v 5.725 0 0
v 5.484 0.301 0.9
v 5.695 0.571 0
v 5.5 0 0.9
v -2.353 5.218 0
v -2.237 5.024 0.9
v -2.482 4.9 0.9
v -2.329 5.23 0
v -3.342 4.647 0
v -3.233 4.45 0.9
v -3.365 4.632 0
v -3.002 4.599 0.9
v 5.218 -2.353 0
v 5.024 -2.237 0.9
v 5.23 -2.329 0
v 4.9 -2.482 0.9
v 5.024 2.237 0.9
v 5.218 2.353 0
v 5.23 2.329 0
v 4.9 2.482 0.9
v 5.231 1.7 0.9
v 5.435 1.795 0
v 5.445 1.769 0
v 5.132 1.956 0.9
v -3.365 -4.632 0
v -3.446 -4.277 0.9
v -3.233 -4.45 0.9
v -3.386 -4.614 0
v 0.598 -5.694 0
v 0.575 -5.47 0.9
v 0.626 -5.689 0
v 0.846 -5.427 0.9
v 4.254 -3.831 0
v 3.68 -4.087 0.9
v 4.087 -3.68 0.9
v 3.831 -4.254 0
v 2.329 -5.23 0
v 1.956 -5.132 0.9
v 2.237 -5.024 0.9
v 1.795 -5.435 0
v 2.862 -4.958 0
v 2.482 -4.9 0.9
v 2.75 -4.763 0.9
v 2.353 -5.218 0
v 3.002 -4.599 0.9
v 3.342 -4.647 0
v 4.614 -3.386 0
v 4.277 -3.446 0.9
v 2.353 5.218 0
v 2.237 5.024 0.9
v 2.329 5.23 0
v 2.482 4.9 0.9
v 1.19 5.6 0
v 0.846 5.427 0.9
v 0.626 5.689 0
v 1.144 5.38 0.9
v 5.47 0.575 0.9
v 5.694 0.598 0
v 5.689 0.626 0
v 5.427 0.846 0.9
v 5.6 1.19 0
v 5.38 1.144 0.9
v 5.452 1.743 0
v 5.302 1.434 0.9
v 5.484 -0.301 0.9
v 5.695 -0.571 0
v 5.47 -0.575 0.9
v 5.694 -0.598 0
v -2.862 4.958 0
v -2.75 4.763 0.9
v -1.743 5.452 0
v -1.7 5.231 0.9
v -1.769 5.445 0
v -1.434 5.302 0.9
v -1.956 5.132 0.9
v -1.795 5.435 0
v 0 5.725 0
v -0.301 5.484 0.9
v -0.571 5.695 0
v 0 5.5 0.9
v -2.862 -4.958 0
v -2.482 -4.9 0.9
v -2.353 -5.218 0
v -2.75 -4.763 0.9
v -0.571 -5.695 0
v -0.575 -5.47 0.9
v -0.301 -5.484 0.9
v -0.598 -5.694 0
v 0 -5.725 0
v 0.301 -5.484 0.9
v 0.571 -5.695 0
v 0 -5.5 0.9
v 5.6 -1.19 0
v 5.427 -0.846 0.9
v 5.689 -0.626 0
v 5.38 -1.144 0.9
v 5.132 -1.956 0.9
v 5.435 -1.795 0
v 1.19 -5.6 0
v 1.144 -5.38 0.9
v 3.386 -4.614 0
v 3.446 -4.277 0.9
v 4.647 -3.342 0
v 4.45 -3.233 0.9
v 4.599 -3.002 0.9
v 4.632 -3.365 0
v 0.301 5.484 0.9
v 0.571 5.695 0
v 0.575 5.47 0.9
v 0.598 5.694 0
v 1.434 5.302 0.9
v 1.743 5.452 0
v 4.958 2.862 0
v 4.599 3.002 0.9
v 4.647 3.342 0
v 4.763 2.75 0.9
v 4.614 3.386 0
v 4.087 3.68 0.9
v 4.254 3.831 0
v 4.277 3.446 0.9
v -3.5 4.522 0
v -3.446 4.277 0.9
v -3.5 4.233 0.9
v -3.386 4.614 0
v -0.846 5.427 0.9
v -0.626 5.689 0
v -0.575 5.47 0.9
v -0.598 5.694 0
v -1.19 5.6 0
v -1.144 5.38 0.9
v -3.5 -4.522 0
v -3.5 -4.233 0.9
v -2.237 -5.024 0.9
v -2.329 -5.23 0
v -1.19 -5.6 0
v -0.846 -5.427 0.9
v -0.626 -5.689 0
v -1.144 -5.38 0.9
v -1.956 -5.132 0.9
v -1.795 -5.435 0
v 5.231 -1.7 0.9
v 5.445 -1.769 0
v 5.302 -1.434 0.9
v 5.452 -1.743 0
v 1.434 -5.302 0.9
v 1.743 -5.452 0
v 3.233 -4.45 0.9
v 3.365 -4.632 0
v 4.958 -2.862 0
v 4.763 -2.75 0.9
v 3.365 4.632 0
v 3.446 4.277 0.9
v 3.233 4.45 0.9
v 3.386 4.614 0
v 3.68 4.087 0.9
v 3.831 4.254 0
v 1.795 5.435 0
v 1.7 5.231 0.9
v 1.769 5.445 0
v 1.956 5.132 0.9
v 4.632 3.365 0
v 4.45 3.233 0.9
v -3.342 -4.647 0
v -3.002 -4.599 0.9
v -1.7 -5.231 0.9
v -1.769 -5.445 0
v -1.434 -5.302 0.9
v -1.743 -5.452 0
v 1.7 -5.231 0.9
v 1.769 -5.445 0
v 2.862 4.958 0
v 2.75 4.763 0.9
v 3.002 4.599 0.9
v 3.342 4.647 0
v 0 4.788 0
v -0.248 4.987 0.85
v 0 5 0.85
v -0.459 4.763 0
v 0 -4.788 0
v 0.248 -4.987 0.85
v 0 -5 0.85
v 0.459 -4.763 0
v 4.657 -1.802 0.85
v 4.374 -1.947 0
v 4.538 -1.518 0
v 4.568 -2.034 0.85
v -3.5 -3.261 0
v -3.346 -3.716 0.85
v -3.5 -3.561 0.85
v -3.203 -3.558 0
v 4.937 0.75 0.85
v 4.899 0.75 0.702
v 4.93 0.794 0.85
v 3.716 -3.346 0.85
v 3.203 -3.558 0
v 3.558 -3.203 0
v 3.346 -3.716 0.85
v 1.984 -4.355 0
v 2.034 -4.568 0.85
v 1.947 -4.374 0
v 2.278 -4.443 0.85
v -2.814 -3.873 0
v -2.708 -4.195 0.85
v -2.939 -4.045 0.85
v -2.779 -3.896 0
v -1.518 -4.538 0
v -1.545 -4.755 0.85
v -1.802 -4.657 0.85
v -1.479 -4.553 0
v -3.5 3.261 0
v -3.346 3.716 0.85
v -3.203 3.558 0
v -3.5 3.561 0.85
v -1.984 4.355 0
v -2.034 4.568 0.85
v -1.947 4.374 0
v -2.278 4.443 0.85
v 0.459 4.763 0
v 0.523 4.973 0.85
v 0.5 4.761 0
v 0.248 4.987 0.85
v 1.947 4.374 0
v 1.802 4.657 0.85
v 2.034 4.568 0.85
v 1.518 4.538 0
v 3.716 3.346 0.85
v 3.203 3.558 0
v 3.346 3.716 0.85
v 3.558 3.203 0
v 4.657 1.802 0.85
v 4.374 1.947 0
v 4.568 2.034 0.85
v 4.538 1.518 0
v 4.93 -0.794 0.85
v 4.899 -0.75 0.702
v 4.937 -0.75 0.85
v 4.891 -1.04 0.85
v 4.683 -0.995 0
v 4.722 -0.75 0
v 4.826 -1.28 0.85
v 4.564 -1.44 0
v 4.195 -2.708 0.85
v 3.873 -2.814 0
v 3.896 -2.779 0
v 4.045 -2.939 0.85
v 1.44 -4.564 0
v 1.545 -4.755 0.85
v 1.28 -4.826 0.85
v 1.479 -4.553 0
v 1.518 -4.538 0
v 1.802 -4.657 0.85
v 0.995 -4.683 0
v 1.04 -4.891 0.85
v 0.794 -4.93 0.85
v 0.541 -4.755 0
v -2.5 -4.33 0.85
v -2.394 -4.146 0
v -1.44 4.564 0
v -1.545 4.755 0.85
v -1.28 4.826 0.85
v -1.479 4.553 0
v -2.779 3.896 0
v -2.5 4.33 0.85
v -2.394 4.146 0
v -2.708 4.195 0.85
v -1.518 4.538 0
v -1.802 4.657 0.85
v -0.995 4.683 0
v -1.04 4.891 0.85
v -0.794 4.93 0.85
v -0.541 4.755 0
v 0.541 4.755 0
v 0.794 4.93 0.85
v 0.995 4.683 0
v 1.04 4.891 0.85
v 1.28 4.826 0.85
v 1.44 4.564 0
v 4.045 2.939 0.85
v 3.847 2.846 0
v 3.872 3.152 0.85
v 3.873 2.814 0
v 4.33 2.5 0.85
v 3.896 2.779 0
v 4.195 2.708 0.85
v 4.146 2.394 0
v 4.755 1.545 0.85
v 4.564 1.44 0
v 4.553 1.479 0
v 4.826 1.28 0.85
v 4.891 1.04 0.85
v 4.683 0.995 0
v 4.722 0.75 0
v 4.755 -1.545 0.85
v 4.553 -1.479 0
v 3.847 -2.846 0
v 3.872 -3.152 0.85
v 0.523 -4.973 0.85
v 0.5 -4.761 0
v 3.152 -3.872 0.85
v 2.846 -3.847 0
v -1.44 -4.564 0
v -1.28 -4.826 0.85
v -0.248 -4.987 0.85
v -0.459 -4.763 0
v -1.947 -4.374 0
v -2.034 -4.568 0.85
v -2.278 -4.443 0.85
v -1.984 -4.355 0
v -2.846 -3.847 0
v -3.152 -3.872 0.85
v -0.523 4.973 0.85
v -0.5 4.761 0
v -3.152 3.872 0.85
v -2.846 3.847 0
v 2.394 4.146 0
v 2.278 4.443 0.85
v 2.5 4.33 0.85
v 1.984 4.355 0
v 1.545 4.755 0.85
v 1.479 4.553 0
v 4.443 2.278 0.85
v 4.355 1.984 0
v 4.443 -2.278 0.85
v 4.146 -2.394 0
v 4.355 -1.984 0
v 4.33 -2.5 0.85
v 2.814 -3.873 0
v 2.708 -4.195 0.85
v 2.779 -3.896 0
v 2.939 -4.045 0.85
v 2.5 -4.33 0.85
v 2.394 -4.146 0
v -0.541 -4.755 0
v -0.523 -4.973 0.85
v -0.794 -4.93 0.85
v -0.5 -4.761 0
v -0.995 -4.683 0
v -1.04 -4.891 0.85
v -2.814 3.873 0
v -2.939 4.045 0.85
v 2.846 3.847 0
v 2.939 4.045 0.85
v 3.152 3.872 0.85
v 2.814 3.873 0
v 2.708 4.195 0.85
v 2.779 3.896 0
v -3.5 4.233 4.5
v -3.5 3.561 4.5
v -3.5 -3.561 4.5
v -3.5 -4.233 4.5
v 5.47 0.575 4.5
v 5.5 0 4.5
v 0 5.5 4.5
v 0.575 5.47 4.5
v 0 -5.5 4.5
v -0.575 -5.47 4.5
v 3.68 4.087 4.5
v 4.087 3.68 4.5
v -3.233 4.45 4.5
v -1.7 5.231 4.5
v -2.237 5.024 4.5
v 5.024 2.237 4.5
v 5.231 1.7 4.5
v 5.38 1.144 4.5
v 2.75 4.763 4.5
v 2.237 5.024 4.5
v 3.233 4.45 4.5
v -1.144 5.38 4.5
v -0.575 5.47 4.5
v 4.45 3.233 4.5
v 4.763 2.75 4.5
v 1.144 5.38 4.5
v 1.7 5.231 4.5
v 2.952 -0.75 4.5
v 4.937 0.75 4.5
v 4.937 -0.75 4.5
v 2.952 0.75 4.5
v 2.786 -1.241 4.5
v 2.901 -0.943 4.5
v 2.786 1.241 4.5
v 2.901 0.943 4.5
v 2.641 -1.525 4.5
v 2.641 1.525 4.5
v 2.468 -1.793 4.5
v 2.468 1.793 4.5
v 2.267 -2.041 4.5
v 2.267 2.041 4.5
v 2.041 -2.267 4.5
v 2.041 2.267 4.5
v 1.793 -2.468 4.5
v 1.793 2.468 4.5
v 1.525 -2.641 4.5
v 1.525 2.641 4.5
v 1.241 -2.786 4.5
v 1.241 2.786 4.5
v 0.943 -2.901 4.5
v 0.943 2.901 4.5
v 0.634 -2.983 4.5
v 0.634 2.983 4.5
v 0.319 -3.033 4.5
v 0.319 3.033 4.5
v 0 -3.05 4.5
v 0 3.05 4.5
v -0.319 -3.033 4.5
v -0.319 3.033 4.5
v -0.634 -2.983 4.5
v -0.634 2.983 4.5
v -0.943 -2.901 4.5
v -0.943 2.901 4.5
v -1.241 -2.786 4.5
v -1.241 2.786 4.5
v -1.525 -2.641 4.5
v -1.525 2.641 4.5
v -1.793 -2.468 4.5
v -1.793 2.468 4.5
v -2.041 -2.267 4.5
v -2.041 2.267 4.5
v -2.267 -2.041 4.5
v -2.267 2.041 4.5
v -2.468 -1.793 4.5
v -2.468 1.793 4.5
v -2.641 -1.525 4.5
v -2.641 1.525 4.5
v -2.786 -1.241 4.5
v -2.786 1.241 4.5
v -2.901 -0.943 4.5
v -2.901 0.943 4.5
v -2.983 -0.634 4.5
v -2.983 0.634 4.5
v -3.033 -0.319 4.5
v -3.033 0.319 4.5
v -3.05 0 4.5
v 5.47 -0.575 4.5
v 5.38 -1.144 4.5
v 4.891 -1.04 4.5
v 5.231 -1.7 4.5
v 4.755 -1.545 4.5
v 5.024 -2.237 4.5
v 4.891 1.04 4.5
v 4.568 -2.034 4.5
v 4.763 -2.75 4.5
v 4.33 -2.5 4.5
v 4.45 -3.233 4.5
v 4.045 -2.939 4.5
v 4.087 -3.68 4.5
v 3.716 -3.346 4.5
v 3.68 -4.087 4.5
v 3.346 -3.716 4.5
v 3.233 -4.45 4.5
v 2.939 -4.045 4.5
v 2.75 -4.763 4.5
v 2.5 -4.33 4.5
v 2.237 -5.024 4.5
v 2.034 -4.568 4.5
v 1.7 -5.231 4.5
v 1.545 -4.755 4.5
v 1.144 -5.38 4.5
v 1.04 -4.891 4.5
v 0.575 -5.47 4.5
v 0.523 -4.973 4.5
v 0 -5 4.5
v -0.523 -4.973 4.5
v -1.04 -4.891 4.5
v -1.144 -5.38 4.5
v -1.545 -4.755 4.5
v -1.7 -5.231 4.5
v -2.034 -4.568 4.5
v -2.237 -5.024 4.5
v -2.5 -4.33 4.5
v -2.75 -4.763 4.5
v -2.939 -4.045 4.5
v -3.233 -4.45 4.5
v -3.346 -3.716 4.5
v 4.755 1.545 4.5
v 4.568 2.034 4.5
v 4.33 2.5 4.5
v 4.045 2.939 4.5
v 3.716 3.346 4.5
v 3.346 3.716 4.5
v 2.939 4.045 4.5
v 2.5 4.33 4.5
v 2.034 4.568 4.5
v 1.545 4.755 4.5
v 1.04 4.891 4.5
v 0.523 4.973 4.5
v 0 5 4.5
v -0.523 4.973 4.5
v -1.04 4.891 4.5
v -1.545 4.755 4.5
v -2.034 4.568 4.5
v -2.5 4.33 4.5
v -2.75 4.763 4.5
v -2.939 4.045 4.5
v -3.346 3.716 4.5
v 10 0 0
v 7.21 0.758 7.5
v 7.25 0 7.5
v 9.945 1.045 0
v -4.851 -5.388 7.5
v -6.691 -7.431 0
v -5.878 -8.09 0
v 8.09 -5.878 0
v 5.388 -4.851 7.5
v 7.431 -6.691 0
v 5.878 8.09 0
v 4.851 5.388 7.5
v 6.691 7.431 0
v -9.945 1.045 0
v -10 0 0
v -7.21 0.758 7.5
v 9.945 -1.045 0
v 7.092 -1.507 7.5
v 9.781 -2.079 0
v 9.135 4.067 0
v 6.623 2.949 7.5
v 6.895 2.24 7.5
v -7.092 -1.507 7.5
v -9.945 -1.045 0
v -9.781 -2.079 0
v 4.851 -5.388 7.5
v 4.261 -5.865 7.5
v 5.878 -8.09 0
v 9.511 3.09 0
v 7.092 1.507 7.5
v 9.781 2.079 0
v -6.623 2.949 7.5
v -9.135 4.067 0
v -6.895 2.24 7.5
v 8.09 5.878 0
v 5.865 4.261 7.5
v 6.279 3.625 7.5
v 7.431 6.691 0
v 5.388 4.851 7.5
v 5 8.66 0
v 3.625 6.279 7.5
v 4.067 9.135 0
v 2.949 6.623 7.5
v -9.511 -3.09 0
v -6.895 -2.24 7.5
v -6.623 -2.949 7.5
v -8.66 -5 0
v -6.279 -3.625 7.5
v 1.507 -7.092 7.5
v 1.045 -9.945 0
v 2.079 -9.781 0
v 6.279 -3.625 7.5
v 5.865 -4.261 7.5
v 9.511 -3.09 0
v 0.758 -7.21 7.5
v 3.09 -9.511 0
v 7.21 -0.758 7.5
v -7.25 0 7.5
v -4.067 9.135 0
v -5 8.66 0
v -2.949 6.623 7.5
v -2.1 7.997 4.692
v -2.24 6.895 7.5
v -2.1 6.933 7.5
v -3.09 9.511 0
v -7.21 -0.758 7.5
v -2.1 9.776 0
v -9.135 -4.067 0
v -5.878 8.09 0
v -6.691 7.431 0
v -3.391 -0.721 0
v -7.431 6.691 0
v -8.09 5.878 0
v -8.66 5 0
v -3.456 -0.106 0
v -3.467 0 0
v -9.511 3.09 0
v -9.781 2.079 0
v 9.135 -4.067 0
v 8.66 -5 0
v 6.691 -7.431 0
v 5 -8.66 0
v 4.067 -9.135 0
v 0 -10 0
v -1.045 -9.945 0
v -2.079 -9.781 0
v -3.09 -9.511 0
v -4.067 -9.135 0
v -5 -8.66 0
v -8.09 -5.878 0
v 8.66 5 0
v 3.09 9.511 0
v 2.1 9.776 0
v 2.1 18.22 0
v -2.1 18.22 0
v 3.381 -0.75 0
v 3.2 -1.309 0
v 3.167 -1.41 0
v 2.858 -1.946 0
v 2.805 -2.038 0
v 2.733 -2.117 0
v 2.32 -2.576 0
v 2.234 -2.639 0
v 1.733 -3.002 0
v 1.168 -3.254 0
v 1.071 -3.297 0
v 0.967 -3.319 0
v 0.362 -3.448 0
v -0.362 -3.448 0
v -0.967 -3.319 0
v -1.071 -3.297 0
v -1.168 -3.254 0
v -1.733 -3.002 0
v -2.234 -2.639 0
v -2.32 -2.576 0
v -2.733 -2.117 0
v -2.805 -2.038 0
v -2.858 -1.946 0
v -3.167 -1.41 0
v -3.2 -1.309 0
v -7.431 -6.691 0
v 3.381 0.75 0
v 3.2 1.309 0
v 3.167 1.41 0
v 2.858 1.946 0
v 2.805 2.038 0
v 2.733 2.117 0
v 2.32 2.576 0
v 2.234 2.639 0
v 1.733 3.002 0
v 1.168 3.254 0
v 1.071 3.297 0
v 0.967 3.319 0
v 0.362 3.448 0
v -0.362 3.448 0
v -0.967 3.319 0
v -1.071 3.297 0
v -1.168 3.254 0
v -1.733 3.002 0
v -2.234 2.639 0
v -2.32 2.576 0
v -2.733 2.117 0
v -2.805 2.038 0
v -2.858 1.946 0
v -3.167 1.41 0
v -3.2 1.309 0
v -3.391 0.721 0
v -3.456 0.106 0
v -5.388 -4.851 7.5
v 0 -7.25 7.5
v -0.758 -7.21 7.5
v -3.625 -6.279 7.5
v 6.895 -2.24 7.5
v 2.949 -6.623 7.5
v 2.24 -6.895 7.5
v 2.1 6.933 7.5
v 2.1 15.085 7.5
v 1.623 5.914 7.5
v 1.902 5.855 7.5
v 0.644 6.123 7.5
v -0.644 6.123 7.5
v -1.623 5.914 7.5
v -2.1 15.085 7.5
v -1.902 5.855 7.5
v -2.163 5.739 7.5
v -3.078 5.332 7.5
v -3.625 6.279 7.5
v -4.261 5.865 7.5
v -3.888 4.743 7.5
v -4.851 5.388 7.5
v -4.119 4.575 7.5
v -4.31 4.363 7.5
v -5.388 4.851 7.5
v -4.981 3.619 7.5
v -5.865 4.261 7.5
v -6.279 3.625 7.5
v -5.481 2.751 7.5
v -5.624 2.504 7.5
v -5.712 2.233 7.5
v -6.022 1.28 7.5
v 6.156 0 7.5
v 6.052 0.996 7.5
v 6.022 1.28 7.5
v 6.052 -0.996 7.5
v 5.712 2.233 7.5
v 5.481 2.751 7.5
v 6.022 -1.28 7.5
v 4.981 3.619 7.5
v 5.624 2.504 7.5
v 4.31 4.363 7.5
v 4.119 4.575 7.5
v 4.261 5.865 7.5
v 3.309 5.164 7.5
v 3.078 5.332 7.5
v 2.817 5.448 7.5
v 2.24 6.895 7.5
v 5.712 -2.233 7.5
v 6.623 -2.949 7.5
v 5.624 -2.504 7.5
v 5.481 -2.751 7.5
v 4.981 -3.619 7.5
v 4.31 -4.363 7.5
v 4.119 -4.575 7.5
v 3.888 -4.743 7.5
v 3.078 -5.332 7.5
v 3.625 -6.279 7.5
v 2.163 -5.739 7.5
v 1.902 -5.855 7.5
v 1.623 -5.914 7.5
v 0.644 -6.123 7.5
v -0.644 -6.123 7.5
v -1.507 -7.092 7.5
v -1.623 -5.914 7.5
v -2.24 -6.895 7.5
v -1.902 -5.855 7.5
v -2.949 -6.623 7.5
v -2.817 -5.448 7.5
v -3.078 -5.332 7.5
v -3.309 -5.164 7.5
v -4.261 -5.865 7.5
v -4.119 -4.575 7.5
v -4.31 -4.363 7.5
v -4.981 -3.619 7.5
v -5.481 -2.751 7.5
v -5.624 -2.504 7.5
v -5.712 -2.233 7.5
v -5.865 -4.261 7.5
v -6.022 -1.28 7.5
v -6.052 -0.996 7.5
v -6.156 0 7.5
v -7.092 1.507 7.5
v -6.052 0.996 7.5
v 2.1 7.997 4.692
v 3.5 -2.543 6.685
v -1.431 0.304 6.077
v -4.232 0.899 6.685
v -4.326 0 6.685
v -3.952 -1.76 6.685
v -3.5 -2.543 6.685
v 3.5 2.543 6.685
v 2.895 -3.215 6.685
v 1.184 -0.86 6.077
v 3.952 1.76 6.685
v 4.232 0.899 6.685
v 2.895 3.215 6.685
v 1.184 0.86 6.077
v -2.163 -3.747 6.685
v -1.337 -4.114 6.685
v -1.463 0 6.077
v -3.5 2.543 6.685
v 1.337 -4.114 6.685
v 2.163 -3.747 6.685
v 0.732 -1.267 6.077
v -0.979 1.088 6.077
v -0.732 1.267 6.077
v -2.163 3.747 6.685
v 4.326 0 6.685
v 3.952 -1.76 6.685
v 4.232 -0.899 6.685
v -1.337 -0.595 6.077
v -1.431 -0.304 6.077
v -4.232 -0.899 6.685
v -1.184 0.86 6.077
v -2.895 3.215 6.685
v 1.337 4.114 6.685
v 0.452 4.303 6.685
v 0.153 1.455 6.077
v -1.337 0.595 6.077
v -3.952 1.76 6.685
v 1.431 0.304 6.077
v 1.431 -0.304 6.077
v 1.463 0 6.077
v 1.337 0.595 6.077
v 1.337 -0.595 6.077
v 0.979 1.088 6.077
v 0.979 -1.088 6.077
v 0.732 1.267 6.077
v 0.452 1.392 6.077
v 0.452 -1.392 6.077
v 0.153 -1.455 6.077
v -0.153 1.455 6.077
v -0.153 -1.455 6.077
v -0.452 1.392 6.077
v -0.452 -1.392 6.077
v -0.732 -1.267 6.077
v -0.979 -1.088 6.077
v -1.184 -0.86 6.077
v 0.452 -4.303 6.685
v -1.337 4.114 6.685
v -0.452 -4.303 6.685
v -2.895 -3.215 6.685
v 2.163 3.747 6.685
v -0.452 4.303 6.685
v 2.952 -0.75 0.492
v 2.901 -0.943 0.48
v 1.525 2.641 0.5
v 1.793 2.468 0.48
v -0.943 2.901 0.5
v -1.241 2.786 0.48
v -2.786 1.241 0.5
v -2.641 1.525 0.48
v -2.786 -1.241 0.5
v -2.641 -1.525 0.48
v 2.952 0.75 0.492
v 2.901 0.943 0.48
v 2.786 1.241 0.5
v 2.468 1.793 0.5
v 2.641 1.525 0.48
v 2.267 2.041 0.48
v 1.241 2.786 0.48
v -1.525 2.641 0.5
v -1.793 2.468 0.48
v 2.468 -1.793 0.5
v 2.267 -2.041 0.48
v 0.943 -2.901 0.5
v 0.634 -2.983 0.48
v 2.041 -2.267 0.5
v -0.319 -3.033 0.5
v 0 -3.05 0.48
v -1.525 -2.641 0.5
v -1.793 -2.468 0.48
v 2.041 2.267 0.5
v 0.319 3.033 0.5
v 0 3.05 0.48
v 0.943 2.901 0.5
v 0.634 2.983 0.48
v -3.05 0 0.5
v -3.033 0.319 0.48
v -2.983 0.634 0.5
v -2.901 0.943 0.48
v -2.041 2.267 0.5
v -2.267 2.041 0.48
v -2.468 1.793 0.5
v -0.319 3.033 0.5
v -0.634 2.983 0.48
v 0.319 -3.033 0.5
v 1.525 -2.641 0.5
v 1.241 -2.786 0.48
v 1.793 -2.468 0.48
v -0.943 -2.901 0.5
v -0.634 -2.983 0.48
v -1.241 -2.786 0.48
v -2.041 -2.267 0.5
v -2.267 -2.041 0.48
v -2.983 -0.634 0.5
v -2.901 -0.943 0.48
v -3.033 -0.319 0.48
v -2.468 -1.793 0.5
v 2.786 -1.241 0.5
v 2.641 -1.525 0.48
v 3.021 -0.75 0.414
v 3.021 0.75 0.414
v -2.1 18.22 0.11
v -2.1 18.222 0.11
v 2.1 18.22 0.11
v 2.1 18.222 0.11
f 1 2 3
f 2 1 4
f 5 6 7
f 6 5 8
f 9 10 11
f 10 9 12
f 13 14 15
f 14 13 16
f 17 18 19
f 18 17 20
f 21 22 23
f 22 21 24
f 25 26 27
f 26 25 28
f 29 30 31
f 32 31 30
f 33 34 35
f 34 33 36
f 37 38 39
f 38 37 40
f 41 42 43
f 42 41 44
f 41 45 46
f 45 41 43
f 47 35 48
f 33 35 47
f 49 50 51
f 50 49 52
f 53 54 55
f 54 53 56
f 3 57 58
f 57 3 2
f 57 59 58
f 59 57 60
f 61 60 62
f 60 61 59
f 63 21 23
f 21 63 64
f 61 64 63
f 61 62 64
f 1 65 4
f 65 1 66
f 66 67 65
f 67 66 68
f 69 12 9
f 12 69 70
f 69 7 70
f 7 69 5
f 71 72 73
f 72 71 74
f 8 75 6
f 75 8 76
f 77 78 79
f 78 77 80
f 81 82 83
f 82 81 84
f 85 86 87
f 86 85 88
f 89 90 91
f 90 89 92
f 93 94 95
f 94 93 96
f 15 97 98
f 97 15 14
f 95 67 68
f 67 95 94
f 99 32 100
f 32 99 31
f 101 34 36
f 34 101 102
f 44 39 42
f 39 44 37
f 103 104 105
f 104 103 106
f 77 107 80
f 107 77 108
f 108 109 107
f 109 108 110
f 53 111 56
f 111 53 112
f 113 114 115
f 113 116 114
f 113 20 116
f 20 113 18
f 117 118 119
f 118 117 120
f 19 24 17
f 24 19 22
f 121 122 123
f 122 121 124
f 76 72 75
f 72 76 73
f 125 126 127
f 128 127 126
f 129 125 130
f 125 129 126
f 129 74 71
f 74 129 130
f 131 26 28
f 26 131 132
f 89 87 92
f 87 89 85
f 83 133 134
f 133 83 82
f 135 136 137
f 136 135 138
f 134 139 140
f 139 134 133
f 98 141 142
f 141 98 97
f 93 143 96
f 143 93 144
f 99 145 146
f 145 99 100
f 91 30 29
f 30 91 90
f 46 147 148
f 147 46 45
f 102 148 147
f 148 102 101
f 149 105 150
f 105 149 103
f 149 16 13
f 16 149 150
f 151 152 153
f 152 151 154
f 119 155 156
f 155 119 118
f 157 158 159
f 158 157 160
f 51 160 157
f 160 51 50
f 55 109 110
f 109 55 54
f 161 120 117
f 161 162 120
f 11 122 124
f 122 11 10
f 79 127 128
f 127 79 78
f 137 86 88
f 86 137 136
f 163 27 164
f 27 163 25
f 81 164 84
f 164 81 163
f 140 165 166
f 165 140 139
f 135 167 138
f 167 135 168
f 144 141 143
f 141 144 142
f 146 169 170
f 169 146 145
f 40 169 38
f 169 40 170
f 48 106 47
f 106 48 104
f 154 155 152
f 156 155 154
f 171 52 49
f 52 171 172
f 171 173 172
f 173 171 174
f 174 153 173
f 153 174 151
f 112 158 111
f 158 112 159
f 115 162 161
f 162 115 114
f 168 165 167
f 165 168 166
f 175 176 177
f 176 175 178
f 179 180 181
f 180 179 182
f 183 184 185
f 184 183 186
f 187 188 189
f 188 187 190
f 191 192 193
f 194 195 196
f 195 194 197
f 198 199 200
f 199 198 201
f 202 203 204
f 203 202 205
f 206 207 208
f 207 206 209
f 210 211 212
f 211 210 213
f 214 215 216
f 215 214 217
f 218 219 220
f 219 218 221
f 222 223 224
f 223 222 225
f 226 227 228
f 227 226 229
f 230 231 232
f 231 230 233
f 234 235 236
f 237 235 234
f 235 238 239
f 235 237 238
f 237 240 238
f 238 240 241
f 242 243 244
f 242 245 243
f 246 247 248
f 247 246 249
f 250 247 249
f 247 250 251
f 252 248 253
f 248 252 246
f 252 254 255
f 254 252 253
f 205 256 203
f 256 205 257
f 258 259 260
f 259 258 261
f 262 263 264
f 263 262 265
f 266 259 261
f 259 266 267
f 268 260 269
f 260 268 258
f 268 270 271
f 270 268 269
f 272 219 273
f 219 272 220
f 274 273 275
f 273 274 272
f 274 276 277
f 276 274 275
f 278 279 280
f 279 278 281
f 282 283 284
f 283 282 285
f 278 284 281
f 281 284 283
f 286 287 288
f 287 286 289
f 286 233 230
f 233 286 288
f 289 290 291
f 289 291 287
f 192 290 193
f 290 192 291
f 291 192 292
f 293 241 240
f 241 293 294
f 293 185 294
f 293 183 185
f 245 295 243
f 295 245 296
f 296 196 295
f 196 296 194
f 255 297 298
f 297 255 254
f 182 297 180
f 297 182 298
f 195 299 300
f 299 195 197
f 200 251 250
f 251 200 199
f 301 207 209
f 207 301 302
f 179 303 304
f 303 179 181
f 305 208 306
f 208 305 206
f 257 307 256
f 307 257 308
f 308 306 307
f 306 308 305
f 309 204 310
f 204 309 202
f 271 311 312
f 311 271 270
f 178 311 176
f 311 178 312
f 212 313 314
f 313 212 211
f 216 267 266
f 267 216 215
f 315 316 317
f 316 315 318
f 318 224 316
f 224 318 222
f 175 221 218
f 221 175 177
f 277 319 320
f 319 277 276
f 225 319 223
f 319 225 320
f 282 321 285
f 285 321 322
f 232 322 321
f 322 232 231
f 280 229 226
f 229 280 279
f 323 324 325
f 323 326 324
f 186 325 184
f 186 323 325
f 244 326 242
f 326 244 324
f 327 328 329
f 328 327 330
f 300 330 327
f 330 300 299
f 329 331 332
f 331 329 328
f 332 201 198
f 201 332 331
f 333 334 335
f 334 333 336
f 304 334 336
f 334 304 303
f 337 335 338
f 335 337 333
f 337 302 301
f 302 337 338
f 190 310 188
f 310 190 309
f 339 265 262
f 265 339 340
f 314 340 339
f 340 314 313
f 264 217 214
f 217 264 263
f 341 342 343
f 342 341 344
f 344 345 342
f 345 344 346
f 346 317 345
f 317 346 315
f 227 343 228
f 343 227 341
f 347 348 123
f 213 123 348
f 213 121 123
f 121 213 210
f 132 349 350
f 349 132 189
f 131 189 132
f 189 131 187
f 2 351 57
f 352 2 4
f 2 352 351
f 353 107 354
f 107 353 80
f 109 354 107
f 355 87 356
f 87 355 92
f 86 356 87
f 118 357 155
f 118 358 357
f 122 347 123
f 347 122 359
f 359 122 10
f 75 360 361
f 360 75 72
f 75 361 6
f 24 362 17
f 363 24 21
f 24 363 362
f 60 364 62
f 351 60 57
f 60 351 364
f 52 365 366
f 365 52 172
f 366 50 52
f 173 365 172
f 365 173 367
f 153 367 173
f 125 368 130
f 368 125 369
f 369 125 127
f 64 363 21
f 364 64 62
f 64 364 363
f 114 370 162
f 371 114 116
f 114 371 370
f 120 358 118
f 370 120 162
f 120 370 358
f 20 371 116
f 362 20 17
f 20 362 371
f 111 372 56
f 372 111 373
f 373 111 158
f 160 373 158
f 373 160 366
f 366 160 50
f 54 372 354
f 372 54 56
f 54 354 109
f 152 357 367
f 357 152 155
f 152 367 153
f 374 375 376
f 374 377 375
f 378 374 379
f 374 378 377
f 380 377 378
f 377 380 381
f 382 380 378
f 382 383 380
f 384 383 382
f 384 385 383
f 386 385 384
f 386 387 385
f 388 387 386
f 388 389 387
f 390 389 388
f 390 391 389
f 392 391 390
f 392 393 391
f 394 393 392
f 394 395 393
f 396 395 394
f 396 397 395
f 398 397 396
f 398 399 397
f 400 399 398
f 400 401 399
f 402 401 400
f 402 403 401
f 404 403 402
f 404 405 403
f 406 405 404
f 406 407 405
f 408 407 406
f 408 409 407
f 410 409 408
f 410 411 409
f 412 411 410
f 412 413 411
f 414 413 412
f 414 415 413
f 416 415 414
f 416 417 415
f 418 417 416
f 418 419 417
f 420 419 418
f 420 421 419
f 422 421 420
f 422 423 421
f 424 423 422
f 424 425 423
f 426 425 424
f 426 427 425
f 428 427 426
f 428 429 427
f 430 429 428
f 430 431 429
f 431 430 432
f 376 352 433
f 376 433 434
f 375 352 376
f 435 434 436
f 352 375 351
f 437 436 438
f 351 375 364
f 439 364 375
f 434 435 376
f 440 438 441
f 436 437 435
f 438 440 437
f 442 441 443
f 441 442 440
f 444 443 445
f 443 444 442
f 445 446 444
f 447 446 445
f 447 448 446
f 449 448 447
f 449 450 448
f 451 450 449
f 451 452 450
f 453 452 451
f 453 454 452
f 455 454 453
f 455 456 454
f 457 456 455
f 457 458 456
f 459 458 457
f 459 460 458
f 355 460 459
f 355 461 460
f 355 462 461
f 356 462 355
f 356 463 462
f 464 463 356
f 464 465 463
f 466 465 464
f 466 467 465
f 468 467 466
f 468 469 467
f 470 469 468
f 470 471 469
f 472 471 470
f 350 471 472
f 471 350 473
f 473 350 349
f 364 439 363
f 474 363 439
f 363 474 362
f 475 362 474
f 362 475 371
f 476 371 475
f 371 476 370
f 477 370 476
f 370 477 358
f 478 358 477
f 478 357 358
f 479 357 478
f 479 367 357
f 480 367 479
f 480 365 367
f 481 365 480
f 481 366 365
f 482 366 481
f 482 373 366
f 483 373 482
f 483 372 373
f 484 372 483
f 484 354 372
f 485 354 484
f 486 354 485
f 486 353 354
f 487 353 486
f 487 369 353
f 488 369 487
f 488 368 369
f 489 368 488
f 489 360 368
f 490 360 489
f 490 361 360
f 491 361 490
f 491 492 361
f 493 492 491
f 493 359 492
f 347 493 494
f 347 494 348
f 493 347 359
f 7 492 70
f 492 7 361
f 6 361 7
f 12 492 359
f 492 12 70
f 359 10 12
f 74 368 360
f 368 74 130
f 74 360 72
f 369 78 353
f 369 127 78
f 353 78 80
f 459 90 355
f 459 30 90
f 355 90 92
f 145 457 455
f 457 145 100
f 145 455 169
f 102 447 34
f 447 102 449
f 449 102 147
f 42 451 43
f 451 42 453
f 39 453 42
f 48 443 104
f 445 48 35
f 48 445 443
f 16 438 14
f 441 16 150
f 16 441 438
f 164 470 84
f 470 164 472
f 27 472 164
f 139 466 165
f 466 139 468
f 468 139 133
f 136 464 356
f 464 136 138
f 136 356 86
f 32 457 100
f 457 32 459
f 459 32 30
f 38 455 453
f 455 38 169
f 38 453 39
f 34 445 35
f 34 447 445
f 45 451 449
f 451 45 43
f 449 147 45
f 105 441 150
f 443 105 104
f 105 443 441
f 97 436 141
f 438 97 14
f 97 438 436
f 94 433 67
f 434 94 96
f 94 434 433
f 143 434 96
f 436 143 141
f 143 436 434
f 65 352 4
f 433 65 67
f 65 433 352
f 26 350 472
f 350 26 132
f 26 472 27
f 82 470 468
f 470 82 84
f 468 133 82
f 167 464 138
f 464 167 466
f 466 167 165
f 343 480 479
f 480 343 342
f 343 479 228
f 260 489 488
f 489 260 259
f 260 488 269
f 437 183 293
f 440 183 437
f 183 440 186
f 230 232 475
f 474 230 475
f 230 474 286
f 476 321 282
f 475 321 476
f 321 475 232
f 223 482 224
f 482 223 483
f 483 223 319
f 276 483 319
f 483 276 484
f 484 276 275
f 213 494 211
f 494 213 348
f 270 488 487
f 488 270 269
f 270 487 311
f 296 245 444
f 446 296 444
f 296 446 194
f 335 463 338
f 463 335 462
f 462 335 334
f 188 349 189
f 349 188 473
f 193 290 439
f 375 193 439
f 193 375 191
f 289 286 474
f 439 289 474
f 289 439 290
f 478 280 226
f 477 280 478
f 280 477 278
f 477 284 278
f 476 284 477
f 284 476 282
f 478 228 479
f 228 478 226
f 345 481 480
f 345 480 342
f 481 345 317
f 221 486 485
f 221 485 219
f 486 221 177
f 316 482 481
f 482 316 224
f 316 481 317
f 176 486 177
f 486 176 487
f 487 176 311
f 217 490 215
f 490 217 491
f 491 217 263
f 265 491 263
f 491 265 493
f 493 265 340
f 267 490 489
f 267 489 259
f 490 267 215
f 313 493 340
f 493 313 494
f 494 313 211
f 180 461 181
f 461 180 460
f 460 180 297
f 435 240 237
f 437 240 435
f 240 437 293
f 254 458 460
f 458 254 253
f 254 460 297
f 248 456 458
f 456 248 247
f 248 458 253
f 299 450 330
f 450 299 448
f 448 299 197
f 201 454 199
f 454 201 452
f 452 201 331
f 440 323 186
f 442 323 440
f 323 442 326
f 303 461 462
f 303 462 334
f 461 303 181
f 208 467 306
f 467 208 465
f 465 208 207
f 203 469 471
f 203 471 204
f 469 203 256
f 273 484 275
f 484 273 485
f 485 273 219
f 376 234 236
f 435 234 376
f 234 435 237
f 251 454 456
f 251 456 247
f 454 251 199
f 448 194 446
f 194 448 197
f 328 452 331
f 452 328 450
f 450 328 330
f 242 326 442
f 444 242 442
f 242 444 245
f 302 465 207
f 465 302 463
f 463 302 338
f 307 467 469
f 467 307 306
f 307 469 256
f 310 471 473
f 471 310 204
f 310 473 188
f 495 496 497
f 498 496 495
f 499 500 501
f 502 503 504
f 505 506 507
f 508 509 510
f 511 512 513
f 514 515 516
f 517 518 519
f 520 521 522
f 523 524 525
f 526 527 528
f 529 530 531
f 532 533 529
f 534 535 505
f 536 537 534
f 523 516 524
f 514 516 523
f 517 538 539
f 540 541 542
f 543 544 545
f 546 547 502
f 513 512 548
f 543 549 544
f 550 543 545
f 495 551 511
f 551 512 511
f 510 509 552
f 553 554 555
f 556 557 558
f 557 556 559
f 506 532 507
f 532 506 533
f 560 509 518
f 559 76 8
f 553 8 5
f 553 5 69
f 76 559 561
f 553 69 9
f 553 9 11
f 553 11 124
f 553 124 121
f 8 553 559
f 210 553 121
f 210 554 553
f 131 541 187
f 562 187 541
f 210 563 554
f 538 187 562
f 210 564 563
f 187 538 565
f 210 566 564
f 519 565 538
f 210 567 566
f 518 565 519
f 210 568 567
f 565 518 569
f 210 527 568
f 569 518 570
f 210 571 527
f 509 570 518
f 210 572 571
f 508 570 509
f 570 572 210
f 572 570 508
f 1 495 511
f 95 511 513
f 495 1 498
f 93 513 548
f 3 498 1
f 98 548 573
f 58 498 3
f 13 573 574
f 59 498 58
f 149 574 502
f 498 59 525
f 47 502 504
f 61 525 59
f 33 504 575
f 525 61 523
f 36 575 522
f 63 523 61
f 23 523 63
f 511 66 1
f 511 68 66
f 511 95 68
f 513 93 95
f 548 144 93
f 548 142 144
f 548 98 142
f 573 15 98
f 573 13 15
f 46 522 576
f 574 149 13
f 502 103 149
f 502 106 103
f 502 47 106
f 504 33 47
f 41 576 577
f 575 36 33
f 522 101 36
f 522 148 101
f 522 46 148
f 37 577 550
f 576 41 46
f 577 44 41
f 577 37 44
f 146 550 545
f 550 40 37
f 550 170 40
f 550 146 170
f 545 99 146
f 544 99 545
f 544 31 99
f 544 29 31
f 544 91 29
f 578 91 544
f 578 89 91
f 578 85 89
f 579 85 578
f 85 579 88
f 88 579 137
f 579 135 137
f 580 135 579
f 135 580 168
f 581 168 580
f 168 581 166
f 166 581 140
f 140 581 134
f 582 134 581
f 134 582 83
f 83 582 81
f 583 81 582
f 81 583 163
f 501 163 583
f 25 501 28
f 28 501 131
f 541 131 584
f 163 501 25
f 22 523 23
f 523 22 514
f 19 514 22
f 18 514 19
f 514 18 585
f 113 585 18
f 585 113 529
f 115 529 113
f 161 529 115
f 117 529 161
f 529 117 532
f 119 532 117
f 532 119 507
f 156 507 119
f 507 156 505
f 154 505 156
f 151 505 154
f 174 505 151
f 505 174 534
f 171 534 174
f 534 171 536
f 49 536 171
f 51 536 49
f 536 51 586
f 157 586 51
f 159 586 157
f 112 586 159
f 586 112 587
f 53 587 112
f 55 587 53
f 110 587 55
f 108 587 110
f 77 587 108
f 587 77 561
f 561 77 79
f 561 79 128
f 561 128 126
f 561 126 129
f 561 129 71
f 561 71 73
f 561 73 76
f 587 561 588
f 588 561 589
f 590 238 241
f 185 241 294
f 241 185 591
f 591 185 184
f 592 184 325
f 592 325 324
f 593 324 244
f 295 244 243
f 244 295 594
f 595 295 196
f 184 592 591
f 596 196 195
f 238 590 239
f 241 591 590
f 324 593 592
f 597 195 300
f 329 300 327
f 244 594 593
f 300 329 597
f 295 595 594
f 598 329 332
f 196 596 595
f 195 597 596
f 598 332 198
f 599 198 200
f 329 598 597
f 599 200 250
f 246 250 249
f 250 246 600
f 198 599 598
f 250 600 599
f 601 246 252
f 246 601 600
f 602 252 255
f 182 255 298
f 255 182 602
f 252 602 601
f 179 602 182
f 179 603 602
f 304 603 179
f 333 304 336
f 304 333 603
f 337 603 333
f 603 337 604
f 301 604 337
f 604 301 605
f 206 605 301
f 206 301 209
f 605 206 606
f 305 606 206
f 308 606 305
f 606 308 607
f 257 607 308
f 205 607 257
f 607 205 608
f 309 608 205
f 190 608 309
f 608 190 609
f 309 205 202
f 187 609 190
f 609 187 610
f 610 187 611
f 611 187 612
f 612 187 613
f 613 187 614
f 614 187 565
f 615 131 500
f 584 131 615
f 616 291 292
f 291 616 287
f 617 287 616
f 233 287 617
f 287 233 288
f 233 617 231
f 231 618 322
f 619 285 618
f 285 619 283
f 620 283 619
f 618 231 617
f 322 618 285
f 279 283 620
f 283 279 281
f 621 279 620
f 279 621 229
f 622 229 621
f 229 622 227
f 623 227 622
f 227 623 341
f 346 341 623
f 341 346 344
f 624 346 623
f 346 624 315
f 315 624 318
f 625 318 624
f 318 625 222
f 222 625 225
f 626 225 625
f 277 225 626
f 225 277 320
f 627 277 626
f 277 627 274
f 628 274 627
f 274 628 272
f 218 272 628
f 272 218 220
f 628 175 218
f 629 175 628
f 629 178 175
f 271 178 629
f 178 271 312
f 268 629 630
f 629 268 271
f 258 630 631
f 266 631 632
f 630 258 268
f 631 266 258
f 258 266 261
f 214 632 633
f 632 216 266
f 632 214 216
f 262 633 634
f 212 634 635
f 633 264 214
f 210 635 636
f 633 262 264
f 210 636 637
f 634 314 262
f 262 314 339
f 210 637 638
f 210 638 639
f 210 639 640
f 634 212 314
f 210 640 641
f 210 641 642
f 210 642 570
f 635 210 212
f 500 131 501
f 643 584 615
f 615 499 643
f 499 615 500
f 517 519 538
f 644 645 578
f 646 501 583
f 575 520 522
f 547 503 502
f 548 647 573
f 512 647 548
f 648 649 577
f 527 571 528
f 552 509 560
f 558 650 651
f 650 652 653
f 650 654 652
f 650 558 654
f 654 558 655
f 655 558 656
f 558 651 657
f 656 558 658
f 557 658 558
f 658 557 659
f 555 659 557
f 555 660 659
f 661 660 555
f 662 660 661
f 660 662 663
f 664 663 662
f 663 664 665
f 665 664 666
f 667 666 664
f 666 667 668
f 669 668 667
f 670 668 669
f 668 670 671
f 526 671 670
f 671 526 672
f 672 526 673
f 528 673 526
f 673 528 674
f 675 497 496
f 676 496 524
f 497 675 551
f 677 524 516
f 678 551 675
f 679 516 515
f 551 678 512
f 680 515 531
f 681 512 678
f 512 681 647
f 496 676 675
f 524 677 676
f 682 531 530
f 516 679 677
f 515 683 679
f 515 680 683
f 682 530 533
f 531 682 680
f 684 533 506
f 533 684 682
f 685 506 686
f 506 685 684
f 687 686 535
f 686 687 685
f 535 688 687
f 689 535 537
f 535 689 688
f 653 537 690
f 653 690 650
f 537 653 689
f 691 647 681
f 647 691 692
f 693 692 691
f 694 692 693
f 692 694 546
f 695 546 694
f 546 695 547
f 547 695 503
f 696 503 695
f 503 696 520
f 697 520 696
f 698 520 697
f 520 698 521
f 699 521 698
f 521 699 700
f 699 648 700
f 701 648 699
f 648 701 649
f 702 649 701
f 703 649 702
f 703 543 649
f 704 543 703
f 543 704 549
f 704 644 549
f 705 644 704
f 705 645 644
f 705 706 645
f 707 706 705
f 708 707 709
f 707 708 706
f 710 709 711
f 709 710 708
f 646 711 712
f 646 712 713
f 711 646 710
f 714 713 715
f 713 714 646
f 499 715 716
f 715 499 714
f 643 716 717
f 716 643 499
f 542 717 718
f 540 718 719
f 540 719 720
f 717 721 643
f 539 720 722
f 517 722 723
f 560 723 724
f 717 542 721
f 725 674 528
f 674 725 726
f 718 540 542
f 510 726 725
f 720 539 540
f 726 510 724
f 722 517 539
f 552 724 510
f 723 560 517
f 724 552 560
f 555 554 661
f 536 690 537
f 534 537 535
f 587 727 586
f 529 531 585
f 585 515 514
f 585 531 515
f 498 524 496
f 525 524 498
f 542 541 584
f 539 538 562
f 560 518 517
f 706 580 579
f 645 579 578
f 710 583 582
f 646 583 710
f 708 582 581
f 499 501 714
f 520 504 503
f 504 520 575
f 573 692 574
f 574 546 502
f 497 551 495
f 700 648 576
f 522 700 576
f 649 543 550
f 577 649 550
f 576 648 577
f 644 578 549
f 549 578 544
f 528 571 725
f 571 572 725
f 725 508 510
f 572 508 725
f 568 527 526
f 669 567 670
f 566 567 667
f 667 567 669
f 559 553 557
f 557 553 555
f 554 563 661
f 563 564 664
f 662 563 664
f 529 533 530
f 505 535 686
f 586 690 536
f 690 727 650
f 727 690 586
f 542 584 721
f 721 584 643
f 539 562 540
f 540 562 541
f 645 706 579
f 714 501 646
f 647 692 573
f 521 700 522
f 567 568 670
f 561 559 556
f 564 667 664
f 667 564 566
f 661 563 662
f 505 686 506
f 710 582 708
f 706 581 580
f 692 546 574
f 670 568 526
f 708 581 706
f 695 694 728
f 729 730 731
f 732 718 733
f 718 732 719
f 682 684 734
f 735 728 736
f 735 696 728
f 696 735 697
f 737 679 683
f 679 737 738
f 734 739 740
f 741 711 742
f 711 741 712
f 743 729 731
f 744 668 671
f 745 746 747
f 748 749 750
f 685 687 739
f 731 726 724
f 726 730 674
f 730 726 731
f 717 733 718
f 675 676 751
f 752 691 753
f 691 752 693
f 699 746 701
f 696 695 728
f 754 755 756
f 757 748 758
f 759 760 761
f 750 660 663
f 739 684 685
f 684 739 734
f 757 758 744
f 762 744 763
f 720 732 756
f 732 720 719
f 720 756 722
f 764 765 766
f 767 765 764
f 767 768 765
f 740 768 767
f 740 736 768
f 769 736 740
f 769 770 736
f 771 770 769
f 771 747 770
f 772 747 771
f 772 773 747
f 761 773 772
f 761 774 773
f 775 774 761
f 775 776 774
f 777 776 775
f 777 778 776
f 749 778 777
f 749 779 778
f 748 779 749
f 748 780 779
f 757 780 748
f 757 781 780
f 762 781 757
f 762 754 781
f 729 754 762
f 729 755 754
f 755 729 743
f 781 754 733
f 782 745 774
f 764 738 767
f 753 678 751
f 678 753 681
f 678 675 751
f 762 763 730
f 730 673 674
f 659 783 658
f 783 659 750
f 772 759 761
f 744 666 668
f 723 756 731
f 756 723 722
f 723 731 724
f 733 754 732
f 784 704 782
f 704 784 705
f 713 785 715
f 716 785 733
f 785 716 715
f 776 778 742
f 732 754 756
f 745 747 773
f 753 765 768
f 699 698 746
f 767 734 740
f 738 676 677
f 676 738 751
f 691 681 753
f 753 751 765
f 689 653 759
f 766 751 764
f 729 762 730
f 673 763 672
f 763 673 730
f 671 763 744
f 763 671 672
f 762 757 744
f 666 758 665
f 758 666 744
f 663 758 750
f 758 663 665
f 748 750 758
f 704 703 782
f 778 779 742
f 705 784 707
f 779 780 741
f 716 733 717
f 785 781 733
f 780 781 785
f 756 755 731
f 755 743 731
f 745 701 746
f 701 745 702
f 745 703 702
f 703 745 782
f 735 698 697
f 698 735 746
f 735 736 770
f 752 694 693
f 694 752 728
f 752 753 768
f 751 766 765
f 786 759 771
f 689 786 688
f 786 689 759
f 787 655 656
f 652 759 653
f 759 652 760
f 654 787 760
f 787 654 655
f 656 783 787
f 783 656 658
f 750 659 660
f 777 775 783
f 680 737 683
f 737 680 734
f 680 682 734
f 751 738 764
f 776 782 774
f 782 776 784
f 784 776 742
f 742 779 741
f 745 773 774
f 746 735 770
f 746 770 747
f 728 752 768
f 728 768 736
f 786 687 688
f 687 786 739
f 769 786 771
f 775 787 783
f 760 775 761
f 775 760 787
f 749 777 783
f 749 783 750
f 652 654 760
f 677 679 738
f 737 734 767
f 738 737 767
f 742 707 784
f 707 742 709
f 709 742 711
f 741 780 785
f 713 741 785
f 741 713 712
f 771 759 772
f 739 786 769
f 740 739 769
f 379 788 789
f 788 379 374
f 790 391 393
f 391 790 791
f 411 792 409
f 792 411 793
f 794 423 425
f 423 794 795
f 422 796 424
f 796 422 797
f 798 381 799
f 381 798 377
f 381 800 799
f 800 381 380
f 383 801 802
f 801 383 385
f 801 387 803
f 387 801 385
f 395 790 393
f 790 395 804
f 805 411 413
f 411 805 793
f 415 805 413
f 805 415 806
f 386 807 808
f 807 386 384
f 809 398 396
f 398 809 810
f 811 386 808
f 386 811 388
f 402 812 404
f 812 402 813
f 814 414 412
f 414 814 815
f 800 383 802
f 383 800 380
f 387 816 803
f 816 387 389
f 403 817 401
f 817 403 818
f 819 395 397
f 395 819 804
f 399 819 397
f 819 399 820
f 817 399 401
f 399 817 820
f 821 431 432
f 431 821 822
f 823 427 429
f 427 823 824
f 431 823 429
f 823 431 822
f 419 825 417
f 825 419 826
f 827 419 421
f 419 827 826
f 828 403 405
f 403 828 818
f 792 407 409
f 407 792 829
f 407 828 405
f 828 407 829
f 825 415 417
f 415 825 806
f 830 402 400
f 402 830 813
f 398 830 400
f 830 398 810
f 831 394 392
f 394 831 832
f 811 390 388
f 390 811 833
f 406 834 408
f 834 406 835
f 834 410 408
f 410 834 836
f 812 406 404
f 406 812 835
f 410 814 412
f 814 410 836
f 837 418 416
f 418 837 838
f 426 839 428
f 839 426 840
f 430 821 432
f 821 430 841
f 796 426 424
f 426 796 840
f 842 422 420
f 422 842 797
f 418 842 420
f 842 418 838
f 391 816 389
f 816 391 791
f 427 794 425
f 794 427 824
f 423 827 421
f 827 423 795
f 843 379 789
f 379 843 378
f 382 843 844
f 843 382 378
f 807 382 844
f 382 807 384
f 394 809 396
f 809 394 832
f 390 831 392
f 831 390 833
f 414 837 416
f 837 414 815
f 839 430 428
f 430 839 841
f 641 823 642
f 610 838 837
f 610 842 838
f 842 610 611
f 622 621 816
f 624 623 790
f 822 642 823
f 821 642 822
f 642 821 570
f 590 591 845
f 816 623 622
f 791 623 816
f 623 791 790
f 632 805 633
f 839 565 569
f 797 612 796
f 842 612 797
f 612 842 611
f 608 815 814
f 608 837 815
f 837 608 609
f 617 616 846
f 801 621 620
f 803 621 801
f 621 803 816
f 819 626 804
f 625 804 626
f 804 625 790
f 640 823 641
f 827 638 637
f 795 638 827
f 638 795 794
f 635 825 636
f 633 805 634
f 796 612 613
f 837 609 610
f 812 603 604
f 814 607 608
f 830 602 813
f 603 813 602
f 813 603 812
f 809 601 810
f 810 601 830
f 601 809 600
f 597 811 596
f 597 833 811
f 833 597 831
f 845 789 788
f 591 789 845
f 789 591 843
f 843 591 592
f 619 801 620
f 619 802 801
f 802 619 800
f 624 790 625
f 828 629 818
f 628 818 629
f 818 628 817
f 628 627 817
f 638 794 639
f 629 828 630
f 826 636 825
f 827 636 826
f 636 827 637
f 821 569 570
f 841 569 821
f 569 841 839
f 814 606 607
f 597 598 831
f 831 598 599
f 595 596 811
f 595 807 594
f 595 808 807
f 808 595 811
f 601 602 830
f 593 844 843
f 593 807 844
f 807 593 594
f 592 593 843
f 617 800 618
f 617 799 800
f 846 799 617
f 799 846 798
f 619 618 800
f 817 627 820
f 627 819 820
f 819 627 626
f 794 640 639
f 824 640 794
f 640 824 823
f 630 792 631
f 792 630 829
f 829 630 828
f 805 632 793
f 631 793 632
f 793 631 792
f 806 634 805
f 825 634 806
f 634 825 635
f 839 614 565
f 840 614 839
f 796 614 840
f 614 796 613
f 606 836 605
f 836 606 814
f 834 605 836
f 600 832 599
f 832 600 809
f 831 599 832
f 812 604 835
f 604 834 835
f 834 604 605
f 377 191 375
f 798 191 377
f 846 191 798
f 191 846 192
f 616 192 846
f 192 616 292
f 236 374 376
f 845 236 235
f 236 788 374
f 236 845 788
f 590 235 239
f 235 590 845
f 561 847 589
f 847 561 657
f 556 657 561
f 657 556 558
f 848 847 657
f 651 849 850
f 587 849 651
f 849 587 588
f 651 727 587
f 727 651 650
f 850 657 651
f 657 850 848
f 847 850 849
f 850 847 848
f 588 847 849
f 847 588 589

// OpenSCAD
// PRUSA iteration3
// LCD Knob
// GNU GPL v3
// Josef Průša <iam@josefprusa.cz> and contributors
// http://www.reprap.org/wiki/Prusa_Mendel
// http://prusamendel.org

difference () {

// main body

translate([0,0,0]) rotate(a=[0,0,0]) cylinder(h = 7.5, r1=10, r=7.25, $fn=60);

translate([0,0,20]) rotate(a=[0,0,0]) sphere(14);

// knob cutout
translate([0,0,-0.1]) rotate(a=[0,0,0]) cylinder(h = 4.6, d=6.1, $fn=60);
    
translate([0,0,-0.1]) rotate(a=[0,0,0]) cylinder(h = 0.6, d1=7.1, d2=6.1 , $fn=30); 
    
translate([0,0.75,-0.1]) rotate(a=[0,0,-90]) cube([1.5,5.3,4.6]);

// first layer correction
union () {

difference (){    
translate([0,0,-0.1]) rotate(a=[0,0,0]) cylinder(h = 2,d1= 11.5, d2=10.5, $fn=60);
translate([0,0,-0.15]) rotate(a=[0,0,0]) cylinder(h = 2,d1= 9.5, d2=10.5, $fn=60);
translate([0,0,1]) rotate(a=[0,0,0]) cylinder(h = 2,d= 13, $fn=30);
    translate([-13.5,-6,-0.1]) rotate(a=[0,0,0]) cube([10,12,4.6]);
}
}      
    

difference () {

translate([0,0,-0.1]) rotate(a=[0,0,0]) cylinder(h = 4.6, d=11, $fn=60);
translate([0,0,-0.1]) rotate(a=[0,0,0]) cylinder(h = 4.6, d= 10, $fn=60);
translate([-13.5,-6,-0.1]) rotate(a=[0,0,0]) cube([10,12,4.6]);
    
    }    
    
    
    
    }

// handle
 
difference () {

translate([-2.1,6.5,0]) rotate(a=[0,0,0]) cube([4.2,12,7.5]);
translate([-2.5,15,7.7]) rotate(a=[-67,0,0]) cube([5.5,11,7.5]);
translate([-2.2,18.22,-0.1]) rotate(a=[0,0,0]) cube([4.4,12,0.21]);    
    
}
